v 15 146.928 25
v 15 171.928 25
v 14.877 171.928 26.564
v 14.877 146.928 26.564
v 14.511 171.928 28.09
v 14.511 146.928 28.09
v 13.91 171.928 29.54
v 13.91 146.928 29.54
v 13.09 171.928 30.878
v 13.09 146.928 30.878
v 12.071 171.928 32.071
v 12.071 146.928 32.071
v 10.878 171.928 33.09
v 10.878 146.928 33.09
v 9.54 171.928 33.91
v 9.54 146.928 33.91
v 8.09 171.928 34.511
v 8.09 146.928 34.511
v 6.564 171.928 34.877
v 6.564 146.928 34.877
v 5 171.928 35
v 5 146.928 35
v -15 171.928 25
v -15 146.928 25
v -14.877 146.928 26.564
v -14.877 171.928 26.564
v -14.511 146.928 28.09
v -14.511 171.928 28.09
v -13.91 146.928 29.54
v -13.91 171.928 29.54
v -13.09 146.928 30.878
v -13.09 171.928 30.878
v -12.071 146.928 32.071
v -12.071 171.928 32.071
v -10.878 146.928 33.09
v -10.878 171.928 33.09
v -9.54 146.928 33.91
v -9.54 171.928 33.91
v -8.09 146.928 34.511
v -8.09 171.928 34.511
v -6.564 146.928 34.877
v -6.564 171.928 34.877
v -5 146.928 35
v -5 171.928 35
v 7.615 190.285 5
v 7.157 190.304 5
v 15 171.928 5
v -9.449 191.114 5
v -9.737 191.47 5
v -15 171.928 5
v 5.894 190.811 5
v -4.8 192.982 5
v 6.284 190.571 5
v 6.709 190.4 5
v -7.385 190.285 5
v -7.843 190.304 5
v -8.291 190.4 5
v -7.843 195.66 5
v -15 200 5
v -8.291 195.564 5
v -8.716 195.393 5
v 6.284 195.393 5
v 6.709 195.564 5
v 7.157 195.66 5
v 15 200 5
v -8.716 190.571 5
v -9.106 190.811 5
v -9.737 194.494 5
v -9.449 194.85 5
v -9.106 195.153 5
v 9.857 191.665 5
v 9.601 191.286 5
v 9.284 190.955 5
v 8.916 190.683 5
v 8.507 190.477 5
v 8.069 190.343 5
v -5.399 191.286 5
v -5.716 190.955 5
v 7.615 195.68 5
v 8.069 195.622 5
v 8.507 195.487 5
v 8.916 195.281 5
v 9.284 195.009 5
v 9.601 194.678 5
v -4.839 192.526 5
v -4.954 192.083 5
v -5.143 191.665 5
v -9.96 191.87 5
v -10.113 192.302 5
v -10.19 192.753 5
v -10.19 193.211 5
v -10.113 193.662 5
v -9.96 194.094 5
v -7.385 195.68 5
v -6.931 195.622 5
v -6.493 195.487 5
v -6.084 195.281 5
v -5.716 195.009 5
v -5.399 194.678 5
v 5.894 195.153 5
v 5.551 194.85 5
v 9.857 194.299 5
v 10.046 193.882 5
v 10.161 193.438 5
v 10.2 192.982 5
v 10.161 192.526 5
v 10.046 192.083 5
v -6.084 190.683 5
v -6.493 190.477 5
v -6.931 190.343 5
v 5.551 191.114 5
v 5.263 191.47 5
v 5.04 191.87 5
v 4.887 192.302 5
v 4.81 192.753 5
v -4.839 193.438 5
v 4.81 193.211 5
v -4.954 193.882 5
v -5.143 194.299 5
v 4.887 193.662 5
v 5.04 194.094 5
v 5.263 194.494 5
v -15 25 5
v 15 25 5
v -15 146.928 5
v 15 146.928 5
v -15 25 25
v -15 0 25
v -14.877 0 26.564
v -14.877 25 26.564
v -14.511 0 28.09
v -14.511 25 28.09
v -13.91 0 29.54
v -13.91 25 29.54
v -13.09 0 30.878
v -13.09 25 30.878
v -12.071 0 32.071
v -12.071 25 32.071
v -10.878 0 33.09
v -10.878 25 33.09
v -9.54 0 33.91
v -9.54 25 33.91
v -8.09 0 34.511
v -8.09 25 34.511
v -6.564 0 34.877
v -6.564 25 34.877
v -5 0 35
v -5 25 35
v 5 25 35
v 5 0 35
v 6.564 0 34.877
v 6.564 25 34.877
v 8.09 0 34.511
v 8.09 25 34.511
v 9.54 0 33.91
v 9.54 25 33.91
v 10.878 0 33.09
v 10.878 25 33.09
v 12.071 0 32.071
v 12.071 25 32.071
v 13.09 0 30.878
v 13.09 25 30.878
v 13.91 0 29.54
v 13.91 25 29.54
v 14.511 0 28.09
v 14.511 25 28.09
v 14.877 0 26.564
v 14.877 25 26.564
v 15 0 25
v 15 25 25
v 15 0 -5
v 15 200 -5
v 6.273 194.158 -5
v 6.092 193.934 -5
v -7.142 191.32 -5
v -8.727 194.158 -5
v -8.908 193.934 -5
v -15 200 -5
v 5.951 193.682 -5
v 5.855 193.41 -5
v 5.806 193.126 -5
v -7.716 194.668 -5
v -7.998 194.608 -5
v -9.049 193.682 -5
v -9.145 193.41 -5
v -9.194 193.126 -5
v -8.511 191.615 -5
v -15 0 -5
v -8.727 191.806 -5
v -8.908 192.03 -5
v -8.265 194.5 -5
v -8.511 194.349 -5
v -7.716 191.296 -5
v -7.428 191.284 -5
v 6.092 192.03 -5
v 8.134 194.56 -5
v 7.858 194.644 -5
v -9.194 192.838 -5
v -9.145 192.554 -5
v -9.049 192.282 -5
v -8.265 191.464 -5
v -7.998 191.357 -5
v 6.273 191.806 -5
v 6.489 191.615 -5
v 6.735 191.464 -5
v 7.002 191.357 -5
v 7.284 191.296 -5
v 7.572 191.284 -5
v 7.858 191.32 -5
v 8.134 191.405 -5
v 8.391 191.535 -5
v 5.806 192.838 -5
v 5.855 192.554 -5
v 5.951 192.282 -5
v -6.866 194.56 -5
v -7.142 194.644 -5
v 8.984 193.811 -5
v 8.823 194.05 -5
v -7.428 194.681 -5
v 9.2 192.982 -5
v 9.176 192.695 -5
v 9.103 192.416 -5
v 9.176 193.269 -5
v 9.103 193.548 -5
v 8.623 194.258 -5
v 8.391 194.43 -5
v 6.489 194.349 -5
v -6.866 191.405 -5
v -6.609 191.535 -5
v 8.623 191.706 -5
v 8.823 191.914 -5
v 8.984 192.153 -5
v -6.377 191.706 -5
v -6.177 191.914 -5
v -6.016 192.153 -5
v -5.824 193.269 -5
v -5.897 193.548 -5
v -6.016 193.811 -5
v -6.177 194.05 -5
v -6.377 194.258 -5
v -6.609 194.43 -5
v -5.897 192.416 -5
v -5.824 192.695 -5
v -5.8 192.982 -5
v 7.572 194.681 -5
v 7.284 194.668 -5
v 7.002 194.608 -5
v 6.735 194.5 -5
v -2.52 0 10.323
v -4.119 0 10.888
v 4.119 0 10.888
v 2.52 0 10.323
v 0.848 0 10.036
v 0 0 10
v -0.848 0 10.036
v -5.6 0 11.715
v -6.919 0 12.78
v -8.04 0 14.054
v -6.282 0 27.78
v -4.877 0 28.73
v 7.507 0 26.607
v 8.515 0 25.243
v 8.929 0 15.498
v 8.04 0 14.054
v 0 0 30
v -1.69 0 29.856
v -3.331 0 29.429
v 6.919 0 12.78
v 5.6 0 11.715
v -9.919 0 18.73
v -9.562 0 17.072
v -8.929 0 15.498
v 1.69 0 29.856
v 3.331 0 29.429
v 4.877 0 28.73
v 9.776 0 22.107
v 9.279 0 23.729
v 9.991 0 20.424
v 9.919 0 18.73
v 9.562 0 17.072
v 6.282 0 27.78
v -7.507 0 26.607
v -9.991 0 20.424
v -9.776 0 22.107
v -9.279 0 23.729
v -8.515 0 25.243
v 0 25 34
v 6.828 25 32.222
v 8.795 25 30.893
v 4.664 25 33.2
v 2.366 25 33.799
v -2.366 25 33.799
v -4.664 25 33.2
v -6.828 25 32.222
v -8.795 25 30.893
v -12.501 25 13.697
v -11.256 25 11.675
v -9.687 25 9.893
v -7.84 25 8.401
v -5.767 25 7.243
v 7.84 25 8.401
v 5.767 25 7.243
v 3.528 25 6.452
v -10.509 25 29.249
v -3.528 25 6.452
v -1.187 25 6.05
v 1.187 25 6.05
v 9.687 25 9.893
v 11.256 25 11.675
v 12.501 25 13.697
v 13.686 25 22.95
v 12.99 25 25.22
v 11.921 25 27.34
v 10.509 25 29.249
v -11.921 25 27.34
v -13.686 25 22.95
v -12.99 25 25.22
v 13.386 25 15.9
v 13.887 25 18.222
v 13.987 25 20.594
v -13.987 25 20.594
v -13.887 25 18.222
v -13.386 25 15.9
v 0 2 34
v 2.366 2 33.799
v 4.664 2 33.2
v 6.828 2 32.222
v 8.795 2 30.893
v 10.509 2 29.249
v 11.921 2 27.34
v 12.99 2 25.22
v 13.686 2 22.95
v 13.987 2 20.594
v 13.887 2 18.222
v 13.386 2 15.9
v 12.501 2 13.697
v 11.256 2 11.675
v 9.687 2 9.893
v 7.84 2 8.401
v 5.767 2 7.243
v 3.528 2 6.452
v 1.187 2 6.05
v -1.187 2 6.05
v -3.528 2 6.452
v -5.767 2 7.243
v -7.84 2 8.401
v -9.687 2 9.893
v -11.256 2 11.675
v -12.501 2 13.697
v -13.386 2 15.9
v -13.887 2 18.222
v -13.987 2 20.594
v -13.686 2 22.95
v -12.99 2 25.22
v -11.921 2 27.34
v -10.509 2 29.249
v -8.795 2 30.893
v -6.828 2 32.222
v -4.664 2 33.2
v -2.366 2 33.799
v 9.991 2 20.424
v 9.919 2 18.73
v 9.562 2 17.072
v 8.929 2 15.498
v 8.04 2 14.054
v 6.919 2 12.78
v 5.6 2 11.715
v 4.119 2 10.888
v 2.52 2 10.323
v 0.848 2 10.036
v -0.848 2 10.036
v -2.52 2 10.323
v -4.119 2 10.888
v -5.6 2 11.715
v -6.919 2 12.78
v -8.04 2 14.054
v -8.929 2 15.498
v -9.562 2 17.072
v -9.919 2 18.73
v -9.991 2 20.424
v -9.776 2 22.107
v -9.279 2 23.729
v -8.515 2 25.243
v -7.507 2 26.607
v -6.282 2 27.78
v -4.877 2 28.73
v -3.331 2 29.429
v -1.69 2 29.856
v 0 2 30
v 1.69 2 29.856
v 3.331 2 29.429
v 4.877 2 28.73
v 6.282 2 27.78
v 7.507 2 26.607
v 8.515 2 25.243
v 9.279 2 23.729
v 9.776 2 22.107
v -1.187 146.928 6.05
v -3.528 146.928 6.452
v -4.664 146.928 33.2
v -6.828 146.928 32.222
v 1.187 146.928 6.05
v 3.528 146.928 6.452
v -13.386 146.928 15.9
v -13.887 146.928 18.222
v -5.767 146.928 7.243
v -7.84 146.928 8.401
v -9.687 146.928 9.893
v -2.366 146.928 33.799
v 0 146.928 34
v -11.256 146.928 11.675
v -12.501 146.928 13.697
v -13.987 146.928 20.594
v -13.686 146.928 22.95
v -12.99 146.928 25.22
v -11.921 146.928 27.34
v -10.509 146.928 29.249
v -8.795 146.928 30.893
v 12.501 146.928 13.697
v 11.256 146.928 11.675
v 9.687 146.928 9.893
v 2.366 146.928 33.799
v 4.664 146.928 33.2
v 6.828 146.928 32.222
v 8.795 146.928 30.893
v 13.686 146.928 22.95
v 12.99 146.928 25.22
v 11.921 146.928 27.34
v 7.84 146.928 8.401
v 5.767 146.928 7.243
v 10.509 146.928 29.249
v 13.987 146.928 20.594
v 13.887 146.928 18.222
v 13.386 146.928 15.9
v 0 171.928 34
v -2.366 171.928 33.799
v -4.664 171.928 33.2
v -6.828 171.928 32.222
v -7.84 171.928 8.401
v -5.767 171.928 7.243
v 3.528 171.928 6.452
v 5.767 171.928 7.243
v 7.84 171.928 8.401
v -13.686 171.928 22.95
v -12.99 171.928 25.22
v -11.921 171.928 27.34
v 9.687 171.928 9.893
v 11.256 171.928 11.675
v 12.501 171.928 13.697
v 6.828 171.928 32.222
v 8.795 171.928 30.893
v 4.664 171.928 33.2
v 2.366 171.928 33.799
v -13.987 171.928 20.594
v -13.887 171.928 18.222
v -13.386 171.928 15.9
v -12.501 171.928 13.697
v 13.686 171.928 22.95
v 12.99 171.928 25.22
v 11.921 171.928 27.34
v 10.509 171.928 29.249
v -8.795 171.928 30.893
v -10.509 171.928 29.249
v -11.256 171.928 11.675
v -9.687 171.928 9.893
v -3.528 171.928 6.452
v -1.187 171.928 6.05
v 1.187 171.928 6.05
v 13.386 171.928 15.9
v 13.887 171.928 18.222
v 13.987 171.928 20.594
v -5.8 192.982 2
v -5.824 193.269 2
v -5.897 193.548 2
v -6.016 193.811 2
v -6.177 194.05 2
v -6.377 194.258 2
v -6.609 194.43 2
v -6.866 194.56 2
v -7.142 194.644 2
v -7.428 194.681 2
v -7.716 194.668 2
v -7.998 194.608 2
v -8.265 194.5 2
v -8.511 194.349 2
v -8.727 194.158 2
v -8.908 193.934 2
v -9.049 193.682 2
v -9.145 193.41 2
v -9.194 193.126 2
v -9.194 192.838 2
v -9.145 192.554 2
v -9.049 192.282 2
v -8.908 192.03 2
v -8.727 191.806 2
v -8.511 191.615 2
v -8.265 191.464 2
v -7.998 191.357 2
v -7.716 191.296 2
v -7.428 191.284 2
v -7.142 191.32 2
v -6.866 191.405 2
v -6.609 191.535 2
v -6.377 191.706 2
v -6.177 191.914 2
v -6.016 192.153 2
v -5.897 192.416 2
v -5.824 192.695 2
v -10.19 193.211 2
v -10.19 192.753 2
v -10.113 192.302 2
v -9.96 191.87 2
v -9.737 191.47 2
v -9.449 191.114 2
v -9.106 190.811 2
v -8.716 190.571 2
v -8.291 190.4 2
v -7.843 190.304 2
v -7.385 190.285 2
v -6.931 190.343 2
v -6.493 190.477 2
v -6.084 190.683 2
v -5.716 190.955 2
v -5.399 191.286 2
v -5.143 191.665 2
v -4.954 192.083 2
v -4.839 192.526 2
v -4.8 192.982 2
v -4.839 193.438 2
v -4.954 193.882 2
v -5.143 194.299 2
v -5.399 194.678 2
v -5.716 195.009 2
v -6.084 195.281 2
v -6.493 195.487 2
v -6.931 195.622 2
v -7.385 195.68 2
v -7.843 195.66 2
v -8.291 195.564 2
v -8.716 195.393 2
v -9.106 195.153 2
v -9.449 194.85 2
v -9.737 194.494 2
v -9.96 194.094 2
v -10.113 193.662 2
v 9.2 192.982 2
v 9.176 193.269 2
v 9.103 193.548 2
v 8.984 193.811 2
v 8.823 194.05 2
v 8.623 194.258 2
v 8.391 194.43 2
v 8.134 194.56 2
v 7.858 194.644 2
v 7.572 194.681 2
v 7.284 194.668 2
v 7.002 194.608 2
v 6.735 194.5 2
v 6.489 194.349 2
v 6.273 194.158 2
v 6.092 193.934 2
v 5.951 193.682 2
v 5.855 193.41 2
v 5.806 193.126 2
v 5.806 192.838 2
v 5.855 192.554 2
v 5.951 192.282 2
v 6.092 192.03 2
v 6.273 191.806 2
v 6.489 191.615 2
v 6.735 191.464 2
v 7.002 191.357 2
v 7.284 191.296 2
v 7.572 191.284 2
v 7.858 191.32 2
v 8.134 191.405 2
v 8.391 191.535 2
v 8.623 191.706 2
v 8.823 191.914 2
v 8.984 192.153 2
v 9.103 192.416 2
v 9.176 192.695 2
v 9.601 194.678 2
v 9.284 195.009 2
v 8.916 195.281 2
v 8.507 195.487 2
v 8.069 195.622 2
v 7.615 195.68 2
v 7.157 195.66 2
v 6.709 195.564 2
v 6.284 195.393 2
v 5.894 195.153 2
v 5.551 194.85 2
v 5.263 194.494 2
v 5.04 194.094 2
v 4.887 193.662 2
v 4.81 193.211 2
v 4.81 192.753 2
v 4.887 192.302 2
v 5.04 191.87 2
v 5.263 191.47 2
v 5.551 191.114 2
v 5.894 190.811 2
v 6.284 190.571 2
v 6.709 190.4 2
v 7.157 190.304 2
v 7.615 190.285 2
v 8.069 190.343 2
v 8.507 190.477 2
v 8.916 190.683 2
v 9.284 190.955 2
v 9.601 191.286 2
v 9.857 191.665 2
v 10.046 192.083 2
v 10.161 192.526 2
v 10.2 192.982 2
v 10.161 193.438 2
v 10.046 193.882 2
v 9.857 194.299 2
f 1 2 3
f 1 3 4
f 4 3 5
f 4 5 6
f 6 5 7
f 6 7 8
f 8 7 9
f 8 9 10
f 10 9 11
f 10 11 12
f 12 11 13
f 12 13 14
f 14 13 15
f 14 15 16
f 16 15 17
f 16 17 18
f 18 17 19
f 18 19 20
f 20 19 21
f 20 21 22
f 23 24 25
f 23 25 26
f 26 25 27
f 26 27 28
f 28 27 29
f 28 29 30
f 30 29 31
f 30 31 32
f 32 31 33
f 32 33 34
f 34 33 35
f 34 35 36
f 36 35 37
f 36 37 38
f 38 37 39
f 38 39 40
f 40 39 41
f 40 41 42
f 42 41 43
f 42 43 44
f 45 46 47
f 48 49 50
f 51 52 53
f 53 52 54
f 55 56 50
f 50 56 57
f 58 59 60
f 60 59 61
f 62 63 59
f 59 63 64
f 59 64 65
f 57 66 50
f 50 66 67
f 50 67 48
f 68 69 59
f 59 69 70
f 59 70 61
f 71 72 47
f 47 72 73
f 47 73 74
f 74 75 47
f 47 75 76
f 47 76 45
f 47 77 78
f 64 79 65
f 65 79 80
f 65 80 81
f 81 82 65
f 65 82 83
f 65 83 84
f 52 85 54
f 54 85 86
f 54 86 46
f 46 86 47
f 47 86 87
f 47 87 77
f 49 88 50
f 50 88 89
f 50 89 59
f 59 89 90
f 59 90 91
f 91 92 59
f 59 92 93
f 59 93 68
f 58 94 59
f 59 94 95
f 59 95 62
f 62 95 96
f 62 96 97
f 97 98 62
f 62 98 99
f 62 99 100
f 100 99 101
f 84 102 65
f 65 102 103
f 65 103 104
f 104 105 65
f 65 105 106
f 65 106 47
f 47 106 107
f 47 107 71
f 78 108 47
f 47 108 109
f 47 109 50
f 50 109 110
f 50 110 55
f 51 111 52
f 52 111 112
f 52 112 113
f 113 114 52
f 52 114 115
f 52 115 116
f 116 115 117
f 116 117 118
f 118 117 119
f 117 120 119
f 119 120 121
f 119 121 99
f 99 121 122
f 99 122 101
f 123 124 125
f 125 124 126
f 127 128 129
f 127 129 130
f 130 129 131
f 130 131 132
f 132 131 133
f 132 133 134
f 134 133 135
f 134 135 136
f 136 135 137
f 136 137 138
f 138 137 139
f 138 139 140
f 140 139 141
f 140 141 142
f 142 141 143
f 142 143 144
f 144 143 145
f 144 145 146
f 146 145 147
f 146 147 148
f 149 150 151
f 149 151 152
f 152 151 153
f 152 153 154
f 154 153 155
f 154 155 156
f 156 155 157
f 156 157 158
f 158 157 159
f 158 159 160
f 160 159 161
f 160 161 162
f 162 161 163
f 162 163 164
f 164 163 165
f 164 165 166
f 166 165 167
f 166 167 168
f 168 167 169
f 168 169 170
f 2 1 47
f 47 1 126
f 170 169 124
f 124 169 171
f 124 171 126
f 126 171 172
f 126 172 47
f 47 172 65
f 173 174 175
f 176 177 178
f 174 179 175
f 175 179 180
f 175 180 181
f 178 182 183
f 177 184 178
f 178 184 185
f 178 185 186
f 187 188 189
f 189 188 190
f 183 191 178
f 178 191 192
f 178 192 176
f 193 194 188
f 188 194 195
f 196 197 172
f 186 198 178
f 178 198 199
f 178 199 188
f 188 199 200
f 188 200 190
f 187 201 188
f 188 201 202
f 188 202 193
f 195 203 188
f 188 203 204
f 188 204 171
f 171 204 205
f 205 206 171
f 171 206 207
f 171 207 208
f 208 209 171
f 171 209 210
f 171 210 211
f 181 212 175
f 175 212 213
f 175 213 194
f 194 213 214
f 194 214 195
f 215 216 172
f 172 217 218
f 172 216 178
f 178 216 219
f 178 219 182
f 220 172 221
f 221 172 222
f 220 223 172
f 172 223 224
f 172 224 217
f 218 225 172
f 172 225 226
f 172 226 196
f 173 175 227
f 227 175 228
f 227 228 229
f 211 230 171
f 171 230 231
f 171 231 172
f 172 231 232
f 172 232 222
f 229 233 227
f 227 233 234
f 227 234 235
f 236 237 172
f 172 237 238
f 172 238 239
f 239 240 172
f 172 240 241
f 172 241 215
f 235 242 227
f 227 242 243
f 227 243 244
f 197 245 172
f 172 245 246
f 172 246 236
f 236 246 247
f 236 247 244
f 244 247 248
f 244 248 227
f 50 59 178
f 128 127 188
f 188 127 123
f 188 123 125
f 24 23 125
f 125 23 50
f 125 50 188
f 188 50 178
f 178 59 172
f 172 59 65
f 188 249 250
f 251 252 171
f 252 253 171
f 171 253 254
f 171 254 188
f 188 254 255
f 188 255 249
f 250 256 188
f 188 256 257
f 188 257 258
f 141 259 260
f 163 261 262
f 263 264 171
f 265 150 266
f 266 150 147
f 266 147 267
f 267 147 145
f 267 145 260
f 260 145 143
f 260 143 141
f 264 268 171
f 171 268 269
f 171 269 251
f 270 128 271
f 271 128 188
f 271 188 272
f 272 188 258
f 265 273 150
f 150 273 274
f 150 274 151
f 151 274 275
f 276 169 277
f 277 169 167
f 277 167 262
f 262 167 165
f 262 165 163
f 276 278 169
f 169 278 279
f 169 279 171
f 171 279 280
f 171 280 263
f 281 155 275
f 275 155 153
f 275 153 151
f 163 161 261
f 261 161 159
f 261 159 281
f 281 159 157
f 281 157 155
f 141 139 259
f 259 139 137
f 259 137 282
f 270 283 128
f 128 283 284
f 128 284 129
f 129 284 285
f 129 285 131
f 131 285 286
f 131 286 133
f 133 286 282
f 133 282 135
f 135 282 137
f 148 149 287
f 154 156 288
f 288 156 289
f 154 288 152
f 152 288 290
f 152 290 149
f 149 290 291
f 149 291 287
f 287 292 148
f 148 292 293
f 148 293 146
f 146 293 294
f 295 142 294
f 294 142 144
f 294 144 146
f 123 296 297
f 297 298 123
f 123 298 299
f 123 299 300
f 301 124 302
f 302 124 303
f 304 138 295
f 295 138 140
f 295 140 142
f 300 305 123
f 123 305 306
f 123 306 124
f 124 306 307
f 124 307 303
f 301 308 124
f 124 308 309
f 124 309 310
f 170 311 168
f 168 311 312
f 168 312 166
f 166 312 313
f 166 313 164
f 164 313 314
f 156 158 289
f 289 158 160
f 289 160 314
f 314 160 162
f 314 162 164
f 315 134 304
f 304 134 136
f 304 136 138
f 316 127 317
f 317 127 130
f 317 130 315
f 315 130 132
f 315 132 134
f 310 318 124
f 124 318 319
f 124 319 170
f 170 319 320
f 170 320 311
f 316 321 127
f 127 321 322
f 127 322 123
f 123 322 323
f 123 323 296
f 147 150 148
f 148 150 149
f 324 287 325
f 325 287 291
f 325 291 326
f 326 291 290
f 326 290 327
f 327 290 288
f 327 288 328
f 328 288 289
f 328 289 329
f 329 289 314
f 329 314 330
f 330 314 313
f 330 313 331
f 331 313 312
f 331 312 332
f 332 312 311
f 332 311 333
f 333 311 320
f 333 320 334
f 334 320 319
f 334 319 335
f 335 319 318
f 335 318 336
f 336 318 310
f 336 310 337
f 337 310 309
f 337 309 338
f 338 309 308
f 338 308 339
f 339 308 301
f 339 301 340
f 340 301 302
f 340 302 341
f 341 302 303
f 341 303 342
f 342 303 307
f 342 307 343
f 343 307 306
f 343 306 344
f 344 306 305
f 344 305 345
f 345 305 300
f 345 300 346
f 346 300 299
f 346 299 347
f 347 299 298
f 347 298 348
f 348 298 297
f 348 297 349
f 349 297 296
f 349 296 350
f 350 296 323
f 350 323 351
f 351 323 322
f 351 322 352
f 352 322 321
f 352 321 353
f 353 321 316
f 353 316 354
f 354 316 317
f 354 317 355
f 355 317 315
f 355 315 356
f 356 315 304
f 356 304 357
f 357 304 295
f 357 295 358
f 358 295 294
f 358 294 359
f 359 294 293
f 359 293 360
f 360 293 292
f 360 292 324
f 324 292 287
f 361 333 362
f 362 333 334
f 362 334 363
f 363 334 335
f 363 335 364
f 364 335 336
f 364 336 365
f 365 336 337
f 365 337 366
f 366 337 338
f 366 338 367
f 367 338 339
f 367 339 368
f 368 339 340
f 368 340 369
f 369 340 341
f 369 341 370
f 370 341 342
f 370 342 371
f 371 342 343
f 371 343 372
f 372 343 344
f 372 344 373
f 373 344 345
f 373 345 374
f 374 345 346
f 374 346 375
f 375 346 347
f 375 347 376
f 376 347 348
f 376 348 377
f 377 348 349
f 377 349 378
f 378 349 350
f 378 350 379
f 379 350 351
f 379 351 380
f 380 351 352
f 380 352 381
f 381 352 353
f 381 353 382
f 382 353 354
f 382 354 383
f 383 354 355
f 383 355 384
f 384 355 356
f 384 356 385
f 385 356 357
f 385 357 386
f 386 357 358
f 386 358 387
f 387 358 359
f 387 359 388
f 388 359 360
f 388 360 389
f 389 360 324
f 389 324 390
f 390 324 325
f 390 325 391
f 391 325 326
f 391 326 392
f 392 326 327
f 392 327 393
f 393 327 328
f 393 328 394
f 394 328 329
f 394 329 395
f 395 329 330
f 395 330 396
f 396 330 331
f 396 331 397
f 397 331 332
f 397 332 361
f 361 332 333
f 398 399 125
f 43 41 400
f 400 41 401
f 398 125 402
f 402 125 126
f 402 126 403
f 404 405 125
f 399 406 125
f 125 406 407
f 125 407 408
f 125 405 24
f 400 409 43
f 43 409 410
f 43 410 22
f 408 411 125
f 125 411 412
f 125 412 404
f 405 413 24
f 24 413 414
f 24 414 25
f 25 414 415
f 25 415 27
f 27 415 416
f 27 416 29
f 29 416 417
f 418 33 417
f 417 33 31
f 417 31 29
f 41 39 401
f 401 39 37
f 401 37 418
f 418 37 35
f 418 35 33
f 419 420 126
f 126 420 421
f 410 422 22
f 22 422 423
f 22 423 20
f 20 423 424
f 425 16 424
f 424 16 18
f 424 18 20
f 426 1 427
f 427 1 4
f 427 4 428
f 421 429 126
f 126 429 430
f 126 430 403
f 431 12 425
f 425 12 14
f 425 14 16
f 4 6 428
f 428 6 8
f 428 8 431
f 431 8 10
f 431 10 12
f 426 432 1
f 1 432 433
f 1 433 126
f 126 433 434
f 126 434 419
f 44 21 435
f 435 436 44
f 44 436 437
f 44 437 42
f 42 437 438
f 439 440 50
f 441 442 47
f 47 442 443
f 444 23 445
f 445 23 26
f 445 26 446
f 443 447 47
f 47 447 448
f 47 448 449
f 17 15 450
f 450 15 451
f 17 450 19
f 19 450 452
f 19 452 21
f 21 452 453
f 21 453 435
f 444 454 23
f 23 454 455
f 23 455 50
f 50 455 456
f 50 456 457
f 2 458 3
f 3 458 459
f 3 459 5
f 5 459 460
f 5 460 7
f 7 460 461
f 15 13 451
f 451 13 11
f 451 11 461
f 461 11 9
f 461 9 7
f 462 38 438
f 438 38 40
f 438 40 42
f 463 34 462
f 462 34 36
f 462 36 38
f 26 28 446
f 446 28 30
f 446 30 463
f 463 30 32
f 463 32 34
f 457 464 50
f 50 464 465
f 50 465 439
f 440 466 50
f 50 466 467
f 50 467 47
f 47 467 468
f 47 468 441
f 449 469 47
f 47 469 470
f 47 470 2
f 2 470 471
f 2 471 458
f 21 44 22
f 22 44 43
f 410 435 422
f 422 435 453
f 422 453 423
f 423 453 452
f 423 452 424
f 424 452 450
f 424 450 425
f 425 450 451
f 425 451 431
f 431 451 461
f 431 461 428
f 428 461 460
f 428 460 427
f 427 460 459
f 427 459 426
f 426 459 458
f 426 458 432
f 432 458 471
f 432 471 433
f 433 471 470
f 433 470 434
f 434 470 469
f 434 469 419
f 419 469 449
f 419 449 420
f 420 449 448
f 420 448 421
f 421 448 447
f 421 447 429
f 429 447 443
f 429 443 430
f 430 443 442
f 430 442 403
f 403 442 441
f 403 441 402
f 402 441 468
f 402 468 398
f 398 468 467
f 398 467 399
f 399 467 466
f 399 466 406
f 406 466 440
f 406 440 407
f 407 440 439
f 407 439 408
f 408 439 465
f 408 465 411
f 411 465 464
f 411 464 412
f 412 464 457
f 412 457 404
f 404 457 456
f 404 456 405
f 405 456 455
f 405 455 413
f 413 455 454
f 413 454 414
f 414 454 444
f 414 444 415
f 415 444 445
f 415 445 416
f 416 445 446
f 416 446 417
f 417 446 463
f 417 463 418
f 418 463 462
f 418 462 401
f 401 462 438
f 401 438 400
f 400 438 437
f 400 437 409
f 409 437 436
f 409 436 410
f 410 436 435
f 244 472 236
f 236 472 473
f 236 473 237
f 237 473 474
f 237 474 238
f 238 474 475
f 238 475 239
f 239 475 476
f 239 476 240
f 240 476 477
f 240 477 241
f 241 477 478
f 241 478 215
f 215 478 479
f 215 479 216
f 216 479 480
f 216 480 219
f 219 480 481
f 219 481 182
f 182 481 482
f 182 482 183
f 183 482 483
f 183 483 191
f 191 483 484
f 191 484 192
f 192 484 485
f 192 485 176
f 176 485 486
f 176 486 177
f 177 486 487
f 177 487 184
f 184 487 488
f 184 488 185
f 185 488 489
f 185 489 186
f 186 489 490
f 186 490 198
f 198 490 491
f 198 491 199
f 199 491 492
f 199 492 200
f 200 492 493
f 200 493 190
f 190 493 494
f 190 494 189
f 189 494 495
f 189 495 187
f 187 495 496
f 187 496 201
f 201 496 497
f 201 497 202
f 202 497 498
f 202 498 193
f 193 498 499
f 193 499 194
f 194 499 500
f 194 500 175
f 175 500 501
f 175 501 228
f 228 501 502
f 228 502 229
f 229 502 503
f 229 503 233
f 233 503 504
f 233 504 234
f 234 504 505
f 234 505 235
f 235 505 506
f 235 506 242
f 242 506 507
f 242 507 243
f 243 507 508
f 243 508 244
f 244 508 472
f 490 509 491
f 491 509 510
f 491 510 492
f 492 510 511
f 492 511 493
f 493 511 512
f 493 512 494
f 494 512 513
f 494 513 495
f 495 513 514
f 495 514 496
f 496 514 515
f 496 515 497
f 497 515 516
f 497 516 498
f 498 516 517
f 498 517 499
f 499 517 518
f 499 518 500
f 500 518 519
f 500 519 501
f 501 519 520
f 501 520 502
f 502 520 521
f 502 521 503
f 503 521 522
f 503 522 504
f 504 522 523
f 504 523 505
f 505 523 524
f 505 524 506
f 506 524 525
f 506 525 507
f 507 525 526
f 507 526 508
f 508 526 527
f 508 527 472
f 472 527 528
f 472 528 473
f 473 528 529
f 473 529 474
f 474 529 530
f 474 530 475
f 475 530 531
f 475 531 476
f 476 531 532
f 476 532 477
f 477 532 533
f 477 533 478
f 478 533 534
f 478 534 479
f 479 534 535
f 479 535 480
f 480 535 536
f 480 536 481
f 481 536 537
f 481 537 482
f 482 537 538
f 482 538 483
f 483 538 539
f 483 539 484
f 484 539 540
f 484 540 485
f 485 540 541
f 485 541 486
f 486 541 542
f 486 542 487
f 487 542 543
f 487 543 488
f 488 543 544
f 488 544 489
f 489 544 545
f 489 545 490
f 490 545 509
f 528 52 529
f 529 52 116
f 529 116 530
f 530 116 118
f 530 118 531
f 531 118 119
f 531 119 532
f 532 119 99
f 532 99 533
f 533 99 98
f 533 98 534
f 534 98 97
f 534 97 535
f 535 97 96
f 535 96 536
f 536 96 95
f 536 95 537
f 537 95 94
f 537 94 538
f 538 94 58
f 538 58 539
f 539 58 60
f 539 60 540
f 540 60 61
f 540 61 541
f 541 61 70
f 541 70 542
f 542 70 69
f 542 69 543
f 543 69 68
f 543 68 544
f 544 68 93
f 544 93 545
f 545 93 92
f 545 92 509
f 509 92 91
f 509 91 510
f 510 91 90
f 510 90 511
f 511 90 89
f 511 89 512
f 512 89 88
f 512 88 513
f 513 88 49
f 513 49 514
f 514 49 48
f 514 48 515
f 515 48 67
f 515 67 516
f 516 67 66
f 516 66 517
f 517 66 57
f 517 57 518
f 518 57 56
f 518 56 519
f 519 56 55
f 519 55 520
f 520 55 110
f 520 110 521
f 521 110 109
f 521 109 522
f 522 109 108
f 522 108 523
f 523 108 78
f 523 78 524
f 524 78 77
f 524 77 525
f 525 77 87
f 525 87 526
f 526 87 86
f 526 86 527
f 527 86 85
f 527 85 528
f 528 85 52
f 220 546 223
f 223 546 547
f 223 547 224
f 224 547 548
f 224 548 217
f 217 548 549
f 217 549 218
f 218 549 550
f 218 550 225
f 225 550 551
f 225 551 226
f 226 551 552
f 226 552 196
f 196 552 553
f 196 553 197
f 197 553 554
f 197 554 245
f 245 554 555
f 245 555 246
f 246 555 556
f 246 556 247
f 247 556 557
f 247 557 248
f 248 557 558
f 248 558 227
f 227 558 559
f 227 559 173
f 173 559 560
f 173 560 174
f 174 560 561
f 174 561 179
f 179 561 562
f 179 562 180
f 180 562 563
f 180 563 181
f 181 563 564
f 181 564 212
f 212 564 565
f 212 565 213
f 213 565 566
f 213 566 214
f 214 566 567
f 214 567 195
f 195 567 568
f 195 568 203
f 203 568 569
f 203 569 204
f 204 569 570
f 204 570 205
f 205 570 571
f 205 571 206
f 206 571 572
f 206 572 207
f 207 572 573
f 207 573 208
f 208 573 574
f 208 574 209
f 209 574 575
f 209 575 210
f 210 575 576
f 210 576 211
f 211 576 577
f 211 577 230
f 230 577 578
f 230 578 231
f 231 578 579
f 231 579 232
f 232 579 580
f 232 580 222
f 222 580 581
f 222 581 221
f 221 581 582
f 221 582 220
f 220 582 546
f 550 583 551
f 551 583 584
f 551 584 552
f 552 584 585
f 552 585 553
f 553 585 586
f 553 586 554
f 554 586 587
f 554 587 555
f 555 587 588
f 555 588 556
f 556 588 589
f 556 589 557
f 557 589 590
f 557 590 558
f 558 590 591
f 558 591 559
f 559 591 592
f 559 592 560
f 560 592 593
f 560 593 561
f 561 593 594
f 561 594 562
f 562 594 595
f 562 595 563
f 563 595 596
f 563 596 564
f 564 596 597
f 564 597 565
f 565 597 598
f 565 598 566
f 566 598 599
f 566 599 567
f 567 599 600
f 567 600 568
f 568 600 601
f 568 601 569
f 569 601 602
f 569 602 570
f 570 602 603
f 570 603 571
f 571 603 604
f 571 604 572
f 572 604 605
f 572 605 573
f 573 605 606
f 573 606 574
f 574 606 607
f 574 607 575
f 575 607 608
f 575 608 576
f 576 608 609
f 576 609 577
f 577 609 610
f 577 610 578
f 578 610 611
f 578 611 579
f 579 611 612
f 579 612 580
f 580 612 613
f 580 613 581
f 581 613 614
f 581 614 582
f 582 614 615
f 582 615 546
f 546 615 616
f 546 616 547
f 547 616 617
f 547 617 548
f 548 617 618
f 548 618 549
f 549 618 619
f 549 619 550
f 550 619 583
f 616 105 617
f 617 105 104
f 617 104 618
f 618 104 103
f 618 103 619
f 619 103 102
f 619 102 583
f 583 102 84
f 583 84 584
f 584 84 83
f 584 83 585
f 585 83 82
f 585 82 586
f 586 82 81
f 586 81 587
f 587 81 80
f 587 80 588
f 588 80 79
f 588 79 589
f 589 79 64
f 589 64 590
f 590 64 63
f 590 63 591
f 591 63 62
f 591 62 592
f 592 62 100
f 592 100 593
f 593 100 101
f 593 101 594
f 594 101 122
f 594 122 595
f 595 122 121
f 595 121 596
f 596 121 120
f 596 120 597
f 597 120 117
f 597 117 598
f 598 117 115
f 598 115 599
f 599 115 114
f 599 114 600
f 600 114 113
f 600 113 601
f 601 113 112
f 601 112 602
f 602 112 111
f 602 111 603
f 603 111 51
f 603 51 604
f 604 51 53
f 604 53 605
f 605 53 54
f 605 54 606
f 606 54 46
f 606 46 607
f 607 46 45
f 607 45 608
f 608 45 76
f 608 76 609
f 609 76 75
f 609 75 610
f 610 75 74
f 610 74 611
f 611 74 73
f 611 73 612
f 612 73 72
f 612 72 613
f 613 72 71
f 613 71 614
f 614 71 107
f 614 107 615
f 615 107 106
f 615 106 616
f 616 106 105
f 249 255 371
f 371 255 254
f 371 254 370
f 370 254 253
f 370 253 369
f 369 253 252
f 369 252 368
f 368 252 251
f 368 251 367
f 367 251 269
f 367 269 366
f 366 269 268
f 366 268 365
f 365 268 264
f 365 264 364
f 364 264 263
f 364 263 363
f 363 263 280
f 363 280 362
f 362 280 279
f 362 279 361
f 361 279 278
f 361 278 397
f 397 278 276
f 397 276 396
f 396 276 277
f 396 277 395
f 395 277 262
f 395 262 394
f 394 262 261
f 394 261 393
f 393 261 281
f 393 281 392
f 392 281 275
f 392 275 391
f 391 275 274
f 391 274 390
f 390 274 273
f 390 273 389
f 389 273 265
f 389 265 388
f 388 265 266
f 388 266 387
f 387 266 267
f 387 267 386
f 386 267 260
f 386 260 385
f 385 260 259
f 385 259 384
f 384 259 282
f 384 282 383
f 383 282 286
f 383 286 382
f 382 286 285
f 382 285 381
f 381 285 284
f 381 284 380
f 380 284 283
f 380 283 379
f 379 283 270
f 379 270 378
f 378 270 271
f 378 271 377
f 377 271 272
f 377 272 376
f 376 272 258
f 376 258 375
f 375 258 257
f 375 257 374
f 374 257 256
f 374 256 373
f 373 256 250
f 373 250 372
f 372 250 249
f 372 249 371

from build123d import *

# Parameters (mm, degrees)
SKETCH1_W                      = 30
SKETCH1_H                      = 10
BOSS_EXTRUDE1_DEPTH            = 200
SKETCH2_W                      = 30
SKETCH2_H                      = 25
BOSS_EXTRUDE2_DEPTH            = 30
SKETCH3_R                      = 14
CUT_EXTRUDE1_DEPTH             = 23
FILLET1_R                      = 10
FILLET2_R                      = 10
SKETCH5_W                      = 30
SKETCH5_H                      = 25
BOSS_EXTRUDE3_DEPTH            = 30
SKETCH6_R                      = 14
CUT_EXTRUDE2_DEPTH             = 30
FILLET3_R                      = 10
FILLET4_R                      = 10
CBORE_FOR_M3_SHCS1_D           = 3.4
CBORE_FOR_M3_SHCS1_CBORE_D     = 5.4
CBORE_FOR_M3_SHCS1_CBORE_DEPTH = 3
SKETCH11_R                     = 10
CUT_EXTRUDE3_DEPTH             = 10


with BuildPart() as part:
    # Sketch1 → Boss-Extrude1 (new body)
    with BuildSketch(Plane(origin=(0, 0, 0), x_dir=(1, 0, 0), z_dir=(0, 1, 0))):
        Rectangle(SKETCH1_W, SKETCH1_H)
    extrude(amount=BOSS_EXTRUDE1_DEPTH)

    # Sketch2 → Boss-Extrude2 (add)
    with BuildSketch(Plane.XY.offset(5)):
        with Locations((0, 12.5)):
            Rectangle(SKETCH2_W, SKETCH2_H)
    extrude(amount=BOSS_EXTRUDE2_DEPTH)

    # Sketch3 → Cut-Extrude1 (cut)
    with BuildSketch(Plane(origin=(0, 25, 0), x_dir=(1, 0, 0), z_dir=(0, 1, 0))):
        with Locations((0, -20)):
            Circle(SKETCH3_R)
    extrude(amount=-CUT_EXTRUDE1_DEPTH, mode=Mode.SUBTRACT)

    # Fillet1
    fillet1_edges = [part.edges().sort_by_distance(p)[0] for p in [
        (15, 12.5, 35),
    ]]
    fillet(fillet1_edges, radius=FILLET1_R)

    # Fillet2
    fillet2_edges = [part.edges().sort_by_distance(p)[0] for p in [
        (-15, 12.5, 35),
    ]]
    fillet(fillet2_edges, radius=FILLET2_R)

    # Sketch5 → Boss-Extrude3 (add)
    with BuildSketch(Plane.XY.offset(5)):
        with Locations((0, 159.428426998)):
            Rectangle(SKETCH5_W, SKETCH5_H)
    extrude(amount=BOSS_EXTRUDE3_DEPTH)

    # Sketch6 → Cut-Extrude2 (cut)
    with BuildSketch(Plane(origin=(0, 171.928426998, 0), x_dir=(1, 0, 0), z_dir=(0, 1, 0))):
        with Locations((0, -20)):
            Circle(SKETCH6_R)
    extrude(amount=-CUT_EXTRUDE2_DEPTH, mode=Mode.SUBTRACT)

    # Fillet3
    fillet3_edges = [part.edges().sort_by_distance(p)[0] for p in [
        (-15, 159.428426998, 35),
    ]]
    fillet(fillet3_edges, radius=FILLET3_R)

    # Fillet4
    fillet4_edges = [part.edges().sort_by_distance(p)[0] for p in [
        (15, 159.428426998, 35),
    ]]
    fillet(fillet4_edges, radius=FILLET4_R)

    # CBORE for M3 SHCS1 (through all)
    with Locations(Plane.XY.offset(5)):
        with Locations((-7.5, 192.982106749)):
            cbore_for_m3_shcs1 = CounterBoreHole(CBORE_FOR_M3_SHCS1_D / 2, CBORE_FOR_M3_SHCS1_CBORE_D / 2, CBORE_FOR_M3_SHCS1_CBORE_DEPTH)

    # Mirror1: CBORE for M3 SHCS1 across plane
    add(cbore_for_m3_shcs1.mirror(Plane(origin=(0, 0, 0), x_dir=(0, 0, 1), z_dir=(1, 0, 0))), mode=Mode.SUBTRACT)

    # Sketch11 → Cut-Extrude3 (cut)
    with BuildSketch(Plane(origin=(0, 2, 0), x_dir=(1, 0, 0), z_dir=(0, 1, 0))):
        with Locations((0, -20)):
            Circle(SKETCH11_R)
    extrude(amount=-CUT_EXTRUDE3_DEPTH, mode=Mode.SUBTRACT)


solid = part.part
